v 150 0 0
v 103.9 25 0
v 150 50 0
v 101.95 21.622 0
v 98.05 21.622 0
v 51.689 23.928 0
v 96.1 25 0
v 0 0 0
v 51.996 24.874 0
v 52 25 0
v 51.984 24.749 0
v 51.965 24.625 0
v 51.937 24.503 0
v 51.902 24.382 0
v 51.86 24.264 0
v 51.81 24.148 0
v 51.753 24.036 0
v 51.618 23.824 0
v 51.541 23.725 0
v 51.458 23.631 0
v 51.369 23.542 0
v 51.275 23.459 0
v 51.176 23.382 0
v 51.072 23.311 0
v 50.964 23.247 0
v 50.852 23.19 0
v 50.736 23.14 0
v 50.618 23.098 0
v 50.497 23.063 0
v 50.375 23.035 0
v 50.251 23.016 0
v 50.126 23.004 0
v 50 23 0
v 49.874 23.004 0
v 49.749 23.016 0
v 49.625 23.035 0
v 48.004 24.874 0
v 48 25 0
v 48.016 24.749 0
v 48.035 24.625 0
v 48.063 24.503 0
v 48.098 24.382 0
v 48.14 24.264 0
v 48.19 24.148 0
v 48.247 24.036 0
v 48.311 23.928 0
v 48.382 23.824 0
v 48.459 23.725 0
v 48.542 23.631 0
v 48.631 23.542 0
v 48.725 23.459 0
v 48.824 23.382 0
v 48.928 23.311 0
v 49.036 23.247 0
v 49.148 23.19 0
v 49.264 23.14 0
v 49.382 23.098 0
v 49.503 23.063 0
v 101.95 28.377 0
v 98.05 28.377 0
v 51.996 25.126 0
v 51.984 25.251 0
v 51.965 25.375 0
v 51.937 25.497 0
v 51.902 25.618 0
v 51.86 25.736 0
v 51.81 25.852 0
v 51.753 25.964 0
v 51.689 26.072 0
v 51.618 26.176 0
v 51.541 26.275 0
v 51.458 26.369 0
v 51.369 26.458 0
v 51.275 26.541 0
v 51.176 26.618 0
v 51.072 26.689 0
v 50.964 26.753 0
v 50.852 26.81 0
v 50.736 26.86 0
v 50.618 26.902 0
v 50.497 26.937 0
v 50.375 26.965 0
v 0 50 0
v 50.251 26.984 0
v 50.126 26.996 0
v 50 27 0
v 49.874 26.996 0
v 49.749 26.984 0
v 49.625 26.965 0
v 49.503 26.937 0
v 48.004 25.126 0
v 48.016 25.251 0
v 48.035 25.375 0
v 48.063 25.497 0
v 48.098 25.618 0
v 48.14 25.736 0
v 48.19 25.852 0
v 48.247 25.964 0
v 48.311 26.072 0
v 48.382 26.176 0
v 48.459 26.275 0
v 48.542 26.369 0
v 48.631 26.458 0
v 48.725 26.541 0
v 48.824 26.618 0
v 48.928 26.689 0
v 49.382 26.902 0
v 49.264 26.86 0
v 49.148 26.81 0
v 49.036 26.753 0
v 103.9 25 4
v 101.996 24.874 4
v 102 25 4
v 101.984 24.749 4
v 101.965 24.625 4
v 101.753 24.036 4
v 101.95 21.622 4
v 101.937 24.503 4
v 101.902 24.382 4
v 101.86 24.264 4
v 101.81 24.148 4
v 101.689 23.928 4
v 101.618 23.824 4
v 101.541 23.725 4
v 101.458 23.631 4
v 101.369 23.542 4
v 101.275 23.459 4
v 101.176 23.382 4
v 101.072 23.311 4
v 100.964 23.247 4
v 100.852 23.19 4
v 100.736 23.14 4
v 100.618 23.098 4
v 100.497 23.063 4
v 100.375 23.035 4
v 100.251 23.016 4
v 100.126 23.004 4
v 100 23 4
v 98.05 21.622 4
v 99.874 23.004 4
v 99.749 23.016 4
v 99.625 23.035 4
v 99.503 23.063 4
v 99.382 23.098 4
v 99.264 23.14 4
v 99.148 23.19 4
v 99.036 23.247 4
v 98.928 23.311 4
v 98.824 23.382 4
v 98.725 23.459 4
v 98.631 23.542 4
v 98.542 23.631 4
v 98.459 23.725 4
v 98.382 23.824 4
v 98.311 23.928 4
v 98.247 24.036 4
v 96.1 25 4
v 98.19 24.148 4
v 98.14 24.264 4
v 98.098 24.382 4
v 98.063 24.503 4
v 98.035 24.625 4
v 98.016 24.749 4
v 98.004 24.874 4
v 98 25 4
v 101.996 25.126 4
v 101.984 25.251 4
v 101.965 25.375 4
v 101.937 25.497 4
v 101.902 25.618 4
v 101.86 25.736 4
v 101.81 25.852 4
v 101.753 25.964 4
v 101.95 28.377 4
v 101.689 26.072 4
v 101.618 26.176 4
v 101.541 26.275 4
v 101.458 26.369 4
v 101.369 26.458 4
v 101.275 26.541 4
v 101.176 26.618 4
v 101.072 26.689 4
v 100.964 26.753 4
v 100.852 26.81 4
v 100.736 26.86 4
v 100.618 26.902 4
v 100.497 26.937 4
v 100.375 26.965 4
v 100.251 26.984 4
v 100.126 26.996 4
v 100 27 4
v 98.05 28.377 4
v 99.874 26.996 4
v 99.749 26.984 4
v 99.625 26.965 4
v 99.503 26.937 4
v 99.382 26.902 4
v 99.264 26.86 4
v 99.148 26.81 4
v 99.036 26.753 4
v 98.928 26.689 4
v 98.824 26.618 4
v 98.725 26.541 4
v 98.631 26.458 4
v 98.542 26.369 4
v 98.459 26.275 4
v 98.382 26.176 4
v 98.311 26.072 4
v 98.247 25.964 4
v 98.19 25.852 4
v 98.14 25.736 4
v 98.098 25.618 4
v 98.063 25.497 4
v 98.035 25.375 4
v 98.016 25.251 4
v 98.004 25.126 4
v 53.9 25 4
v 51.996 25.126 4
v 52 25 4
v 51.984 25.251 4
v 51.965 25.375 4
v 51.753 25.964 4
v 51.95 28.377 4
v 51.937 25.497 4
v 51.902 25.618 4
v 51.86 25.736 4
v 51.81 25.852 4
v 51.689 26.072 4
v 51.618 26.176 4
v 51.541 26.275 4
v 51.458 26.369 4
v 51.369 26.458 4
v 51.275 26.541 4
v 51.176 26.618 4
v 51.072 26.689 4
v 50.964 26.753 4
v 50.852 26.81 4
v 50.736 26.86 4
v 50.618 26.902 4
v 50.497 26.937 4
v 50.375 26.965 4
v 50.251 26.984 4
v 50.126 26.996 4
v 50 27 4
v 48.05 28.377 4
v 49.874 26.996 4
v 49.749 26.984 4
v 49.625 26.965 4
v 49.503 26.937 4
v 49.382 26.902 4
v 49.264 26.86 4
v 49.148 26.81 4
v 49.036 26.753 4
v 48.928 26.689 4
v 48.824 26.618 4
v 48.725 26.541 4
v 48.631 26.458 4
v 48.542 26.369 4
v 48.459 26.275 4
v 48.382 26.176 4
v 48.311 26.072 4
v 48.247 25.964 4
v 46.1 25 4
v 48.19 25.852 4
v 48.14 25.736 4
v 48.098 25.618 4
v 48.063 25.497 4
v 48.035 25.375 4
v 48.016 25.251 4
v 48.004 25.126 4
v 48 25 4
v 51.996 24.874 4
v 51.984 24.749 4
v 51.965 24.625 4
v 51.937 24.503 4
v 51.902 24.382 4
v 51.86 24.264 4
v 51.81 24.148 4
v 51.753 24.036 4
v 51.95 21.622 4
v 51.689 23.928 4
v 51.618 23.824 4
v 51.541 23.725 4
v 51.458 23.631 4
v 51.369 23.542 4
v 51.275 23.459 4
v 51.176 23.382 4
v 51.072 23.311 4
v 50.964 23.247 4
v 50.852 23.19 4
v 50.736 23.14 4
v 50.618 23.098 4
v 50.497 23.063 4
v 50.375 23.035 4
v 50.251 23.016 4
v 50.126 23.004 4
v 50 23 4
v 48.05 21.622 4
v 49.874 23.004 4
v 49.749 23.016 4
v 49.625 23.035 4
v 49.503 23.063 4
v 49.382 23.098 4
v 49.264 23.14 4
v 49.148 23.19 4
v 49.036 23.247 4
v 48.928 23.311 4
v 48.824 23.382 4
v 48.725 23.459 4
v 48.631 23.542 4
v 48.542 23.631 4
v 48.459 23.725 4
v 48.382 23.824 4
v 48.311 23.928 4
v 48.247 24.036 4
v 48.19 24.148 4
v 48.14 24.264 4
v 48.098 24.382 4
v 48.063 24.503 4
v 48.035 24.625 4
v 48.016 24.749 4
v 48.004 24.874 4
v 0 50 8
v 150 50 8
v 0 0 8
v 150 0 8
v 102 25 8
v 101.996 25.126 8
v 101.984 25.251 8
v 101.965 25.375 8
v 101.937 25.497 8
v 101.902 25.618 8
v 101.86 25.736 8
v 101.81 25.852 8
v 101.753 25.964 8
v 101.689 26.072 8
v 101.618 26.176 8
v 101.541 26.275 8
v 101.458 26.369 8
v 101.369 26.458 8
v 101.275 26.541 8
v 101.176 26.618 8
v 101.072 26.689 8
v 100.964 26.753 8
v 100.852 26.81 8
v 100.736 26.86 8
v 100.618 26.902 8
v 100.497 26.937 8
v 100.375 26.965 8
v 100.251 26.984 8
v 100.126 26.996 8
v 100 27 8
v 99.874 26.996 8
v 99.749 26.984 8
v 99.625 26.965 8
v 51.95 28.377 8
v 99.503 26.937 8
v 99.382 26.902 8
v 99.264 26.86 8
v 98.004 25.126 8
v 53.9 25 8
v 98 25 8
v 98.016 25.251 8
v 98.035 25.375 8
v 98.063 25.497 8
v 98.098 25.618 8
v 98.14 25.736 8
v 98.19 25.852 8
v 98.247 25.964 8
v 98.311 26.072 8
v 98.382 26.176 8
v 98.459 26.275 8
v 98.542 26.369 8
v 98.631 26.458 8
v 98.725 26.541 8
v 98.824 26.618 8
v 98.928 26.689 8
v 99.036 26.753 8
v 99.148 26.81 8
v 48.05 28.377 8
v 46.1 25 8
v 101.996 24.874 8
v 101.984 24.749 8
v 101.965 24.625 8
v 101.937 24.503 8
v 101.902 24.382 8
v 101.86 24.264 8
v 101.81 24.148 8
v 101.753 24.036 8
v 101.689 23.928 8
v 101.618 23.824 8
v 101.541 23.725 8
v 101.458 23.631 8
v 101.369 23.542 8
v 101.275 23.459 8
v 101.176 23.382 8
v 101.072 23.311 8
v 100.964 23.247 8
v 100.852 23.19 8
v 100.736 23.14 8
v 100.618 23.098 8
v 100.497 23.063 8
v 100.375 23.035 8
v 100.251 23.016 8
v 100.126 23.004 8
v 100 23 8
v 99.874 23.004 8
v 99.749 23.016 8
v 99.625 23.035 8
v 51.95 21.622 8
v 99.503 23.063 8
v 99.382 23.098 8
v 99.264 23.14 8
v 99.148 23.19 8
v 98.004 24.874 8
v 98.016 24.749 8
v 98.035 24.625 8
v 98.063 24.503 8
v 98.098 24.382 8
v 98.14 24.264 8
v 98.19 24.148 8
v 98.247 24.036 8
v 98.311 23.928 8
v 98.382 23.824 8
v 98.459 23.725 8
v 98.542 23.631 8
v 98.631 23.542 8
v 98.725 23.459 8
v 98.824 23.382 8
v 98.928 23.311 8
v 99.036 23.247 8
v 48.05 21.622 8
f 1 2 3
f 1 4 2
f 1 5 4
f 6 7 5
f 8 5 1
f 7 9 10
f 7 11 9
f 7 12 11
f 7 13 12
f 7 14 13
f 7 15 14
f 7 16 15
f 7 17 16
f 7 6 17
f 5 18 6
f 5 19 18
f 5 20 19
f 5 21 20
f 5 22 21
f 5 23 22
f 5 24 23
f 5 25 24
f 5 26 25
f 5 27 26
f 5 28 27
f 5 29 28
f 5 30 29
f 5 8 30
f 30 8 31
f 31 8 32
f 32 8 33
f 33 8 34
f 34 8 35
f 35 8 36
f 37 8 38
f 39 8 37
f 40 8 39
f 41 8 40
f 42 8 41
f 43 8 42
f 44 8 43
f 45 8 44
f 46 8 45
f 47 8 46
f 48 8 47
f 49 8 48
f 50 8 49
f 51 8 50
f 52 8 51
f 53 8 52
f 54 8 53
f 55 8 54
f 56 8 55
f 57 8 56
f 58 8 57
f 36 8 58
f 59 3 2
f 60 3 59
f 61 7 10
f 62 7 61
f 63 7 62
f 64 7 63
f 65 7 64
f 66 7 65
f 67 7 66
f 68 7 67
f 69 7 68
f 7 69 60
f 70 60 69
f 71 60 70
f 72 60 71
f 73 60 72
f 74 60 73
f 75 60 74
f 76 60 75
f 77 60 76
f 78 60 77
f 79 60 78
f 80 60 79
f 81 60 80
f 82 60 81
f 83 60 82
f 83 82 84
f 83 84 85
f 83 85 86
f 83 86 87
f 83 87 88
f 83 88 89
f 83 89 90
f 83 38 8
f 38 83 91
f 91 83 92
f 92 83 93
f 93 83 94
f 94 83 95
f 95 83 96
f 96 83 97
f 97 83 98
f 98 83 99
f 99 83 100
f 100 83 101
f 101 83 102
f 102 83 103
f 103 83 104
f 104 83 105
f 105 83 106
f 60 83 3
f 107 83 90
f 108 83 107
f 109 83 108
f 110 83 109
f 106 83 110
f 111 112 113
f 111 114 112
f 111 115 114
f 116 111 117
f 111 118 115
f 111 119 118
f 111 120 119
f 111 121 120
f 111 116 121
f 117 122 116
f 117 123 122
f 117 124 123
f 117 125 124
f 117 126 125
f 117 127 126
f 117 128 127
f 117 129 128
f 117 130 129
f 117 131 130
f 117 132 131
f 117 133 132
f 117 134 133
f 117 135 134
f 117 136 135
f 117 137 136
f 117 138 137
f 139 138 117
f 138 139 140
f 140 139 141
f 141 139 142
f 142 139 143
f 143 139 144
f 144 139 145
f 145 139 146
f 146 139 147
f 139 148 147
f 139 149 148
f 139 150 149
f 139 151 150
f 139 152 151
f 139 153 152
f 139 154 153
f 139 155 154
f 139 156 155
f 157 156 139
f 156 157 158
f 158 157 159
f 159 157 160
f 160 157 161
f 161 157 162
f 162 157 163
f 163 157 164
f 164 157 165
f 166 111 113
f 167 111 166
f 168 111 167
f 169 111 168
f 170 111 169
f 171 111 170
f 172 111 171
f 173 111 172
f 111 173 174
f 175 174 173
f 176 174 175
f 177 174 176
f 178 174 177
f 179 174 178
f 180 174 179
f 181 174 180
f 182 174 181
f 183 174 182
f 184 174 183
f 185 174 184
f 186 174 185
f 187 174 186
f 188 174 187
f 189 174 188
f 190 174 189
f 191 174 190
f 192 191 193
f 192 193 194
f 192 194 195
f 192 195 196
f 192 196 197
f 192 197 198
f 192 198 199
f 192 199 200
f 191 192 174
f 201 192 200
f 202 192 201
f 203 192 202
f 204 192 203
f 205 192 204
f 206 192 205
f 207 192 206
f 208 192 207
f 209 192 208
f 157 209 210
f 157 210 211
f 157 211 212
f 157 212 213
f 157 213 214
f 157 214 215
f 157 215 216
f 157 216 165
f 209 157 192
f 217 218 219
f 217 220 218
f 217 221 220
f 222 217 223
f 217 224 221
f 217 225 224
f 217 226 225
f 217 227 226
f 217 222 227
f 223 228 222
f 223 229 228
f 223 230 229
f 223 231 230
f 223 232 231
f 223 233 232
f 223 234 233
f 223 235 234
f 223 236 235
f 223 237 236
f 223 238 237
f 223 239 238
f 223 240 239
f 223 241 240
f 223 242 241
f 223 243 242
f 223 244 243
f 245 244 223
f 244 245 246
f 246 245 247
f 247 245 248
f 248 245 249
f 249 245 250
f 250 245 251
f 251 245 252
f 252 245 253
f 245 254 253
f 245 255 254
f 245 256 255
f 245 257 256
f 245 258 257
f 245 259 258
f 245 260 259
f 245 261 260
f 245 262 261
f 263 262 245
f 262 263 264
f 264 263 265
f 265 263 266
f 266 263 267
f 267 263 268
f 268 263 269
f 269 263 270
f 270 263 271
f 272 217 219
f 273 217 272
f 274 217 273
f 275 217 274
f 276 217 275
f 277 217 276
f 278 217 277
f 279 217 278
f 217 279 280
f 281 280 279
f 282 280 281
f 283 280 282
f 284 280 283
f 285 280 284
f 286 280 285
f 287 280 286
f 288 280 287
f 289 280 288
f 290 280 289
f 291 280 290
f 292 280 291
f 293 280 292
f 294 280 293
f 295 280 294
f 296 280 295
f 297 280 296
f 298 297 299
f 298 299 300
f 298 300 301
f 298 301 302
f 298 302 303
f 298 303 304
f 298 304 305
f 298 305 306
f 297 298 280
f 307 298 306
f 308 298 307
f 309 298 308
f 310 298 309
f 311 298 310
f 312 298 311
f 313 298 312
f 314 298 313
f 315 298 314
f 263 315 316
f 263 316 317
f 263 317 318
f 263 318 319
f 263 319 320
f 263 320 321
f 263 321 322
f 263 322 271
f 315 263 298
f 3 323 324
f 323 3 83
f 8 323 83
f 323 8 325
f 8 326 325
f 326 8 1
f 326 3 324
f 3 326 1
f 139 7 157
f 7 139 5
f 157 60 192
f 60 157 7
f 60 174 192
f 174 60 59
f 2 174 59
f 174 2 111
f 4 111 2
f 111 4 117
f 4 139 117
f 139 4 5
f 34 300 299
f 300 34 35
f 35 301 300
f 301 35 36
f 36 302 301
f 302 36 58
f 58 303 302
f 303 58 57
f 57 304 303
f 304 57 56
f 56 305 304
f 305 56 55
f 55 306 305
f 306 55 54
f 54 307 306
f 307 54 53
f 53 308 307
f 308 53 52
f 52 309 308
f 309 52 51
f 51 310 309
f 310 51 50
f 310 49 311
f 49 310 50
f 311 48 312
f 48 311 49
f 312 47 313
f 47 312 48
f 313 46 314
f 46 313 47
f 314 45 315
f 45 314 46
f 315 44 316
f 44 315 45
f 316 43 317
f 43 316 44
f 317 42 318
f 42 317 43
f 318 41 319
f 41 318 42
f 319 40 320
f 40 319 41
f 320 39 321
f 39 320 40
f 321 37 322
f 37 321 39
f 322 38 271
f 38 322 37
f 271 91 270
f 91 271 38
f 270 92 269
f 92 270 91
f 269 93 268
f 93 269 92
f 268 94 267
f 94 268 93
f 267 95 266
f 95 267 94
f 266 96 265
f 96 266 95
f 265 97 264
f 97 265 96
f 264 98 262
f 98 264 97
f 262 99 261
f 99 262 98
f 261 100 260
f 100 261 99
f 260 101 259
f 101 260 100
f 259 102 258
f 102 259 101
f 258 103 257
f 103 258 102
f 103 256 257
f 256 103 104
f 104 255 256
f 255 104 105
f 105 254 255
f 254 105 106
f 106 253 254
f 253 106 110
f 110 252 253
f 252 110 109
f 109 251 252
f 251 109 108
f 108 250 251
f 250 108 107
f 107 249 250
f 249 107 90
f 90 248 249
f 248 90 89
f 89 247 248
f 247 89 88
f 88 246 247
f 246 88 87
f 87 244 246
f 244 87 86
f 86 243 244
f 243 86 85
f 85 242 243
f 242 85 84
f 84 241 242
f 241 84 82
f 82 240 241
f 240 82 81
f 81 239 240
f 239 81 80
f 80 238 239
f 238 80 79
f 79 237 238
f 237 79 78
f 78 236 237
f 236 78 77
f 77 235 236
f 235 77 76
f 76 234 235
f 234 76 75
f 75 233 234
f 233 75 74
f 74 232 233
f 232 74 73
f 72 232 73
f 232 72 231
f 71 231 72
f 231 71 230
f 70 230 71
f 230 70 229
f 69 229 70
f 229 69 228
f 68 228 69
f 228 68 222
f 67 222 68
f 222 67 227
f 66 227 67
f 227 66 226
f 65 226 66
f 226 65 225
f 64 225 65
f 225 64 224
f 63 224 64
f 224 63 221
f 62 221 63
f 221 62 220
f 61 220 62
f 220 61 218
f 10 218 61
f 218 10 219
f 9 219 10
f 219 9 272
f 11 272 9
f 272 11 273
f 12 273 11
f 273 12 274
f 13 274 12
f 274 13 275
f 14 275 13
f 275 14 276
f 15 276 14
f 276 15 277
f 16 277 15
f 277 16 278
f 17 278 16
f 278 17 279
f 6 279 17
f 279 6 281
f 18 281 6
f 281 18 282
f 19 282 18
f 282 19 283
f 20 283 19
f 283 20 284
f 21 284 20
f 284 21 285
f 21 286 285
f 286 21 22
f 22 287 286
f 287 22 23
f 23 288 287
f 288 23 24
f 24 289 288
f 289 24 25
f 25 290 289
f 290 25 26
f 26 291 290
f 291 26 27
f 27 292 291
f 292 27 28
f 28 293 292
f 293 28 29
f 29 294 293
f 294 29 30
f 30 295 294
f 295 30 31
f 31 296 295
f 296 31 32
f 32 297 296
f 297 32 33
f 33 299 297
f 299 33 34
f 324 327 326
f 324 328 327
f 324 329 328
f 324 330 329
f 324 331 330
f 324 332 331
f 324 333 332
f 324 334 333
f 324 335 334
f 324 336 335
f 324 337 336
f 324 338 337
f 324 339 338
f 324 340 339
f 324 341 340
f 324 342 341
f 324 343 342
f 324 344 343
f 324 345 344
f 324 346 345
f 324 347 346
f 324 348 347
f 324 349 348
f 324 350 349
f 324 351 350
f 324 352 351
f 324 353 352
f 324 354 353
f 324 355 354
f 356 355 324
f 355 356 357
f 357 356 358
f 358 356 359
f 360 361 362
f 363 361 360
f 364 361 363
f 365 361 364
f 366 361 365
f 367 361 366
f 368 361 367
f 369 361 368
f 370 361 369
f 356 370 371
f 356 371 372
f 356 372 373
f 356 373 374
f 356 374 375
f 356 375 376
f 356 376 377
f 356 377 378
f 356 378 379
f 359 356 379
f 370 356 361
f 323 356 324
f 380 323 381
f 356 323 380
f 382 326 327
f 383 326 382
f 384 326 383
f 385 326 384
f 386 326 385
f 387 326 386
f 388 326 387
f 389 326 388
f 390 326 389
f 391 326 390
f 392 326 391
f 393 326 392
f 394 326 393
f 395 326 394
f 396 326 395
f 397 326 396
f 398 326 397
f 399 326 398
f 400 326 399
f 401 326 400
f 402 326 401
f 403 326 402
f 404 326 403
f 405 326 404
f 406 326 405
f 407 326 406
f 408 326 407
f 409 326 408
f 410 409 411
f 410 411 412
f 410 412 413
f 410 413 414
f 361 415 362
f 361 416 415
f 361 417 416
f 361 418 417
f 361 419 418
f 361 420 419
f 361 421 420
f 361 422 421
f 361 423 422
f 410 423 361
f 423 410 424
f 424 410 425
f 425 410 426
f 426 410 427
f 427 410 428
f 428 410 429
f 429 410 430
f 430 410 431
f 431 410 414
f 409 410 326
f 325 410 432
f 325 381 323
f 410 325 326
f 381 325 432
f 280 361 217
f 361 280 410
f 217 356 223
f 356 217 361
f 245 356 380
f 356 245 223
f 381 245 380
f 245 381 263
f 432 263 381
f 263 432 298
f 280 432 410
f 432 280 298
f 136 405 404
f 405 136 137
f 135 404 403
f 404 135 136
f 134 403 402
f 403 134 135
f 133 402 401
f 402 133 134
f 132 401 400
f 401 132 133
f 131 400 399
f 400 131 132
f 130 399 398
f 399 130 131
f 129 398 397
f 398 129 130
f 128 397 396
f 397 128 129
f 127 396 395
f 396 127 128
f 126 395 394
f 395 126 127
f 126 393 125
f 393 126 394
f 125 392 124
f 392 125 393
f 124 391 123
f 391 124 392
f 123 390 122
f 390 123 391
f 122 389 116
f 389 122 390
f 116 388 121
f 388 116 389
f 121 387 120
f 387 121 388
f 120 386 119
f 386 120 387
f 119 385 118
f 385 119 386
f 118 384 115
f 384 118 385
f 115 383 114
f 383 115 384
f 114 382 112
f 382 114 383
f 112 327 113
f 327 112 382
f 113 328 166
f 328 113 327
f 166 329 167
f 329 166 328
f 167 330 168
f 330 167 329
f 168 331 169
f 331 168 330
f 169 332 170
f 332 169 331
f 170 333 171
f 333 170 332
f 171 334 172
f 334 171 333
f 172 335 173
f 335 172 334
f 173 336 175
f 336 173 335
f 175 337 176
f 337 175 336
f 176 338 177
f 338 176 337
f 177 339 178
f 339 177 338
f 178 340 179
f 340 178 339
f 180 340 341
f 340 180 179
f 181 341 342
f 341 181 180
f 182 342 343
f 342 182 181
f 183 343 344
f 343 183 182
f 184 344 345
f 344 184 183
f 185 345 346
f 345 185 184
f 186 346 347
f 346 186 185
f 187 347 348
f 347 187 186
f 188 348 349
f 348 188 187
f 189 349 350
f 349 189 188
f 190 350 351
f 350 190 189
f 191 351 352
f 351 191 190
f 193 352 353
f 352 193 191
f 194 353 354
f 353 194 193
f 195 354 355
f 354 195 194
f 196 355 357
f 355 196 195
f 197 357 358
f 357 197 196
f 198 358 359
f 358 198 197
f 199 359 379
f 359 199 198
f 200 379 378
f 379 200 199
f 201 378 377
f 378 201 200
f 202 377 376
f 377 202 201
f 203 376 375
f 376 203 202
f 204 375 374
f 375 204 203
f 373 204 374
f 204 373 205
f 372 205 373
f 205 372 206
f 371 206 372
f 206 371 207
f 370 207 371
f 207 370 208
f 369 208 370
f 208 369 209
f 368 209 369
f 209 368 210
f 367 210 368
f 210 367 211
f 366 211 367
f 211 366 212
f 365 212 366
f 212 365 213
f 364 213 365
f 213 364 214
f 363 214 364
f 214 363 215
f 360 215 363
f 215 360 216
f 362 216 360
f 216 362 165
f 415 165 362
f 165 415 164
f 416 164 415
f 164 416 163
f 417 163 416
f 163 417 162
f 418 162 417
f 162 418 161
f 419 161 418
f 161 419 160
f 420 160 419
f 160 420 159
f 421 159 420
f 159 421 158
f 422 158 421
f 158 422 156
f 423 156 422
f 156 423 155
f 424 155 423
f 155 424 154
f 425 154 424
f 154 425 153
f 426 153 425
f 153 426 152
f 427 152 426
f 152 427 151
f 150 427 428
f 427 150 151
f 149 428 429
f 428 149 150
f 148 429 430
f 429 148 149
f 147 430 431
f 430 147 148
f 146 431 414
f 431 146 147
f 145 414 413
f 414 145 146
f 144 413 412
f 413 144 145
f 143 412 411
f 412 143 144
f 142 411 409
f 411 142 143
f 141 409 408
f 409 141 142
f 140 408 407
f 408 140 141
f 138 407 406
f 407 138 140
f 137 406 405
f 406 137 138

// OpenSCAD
BOARD_WIDTH = 150;
BOARD_DEPTH = 50;
LAYER_HEIGHT = 4;

module main(){
  board_first_layer();
  
  translate([0, 0, LAYER_HEIGHT]){
    board_second_layer();    
  }
}

module board_first_layer(){
  board_layer();
}

module board_second_layer(){
  translate([BOARD_WIDTH, 0, 0])
  mirror([1,0,0])
  board_layer();
}

module board_layer(reverse){
  linear_extrude(LAYER_HEIGHT){
    BOARD_CHUNK = BOARD_WIDTH / 3;
    DEPTH_CENTER = BOARD_DEPTH / 2;

    difference(){
      board_base();

      translate([BOARD_CHUNK, DEPTH_CENTER, 0])
	m4_6_screw();

      translate([BOARD_CHUNK*2, DEPTH_CENTER, 0])
	m4_6_nut();
    }
  }  
}

module board_base(){
  square([BOARD_WIDTH, BOARD_DEPTH]);
}

module m4_6_screw(){
  $fn = 100;
  circle(2);
}

module m4_6_nut(){
  $fn = 6;
  circle(3.9);
}

main();
